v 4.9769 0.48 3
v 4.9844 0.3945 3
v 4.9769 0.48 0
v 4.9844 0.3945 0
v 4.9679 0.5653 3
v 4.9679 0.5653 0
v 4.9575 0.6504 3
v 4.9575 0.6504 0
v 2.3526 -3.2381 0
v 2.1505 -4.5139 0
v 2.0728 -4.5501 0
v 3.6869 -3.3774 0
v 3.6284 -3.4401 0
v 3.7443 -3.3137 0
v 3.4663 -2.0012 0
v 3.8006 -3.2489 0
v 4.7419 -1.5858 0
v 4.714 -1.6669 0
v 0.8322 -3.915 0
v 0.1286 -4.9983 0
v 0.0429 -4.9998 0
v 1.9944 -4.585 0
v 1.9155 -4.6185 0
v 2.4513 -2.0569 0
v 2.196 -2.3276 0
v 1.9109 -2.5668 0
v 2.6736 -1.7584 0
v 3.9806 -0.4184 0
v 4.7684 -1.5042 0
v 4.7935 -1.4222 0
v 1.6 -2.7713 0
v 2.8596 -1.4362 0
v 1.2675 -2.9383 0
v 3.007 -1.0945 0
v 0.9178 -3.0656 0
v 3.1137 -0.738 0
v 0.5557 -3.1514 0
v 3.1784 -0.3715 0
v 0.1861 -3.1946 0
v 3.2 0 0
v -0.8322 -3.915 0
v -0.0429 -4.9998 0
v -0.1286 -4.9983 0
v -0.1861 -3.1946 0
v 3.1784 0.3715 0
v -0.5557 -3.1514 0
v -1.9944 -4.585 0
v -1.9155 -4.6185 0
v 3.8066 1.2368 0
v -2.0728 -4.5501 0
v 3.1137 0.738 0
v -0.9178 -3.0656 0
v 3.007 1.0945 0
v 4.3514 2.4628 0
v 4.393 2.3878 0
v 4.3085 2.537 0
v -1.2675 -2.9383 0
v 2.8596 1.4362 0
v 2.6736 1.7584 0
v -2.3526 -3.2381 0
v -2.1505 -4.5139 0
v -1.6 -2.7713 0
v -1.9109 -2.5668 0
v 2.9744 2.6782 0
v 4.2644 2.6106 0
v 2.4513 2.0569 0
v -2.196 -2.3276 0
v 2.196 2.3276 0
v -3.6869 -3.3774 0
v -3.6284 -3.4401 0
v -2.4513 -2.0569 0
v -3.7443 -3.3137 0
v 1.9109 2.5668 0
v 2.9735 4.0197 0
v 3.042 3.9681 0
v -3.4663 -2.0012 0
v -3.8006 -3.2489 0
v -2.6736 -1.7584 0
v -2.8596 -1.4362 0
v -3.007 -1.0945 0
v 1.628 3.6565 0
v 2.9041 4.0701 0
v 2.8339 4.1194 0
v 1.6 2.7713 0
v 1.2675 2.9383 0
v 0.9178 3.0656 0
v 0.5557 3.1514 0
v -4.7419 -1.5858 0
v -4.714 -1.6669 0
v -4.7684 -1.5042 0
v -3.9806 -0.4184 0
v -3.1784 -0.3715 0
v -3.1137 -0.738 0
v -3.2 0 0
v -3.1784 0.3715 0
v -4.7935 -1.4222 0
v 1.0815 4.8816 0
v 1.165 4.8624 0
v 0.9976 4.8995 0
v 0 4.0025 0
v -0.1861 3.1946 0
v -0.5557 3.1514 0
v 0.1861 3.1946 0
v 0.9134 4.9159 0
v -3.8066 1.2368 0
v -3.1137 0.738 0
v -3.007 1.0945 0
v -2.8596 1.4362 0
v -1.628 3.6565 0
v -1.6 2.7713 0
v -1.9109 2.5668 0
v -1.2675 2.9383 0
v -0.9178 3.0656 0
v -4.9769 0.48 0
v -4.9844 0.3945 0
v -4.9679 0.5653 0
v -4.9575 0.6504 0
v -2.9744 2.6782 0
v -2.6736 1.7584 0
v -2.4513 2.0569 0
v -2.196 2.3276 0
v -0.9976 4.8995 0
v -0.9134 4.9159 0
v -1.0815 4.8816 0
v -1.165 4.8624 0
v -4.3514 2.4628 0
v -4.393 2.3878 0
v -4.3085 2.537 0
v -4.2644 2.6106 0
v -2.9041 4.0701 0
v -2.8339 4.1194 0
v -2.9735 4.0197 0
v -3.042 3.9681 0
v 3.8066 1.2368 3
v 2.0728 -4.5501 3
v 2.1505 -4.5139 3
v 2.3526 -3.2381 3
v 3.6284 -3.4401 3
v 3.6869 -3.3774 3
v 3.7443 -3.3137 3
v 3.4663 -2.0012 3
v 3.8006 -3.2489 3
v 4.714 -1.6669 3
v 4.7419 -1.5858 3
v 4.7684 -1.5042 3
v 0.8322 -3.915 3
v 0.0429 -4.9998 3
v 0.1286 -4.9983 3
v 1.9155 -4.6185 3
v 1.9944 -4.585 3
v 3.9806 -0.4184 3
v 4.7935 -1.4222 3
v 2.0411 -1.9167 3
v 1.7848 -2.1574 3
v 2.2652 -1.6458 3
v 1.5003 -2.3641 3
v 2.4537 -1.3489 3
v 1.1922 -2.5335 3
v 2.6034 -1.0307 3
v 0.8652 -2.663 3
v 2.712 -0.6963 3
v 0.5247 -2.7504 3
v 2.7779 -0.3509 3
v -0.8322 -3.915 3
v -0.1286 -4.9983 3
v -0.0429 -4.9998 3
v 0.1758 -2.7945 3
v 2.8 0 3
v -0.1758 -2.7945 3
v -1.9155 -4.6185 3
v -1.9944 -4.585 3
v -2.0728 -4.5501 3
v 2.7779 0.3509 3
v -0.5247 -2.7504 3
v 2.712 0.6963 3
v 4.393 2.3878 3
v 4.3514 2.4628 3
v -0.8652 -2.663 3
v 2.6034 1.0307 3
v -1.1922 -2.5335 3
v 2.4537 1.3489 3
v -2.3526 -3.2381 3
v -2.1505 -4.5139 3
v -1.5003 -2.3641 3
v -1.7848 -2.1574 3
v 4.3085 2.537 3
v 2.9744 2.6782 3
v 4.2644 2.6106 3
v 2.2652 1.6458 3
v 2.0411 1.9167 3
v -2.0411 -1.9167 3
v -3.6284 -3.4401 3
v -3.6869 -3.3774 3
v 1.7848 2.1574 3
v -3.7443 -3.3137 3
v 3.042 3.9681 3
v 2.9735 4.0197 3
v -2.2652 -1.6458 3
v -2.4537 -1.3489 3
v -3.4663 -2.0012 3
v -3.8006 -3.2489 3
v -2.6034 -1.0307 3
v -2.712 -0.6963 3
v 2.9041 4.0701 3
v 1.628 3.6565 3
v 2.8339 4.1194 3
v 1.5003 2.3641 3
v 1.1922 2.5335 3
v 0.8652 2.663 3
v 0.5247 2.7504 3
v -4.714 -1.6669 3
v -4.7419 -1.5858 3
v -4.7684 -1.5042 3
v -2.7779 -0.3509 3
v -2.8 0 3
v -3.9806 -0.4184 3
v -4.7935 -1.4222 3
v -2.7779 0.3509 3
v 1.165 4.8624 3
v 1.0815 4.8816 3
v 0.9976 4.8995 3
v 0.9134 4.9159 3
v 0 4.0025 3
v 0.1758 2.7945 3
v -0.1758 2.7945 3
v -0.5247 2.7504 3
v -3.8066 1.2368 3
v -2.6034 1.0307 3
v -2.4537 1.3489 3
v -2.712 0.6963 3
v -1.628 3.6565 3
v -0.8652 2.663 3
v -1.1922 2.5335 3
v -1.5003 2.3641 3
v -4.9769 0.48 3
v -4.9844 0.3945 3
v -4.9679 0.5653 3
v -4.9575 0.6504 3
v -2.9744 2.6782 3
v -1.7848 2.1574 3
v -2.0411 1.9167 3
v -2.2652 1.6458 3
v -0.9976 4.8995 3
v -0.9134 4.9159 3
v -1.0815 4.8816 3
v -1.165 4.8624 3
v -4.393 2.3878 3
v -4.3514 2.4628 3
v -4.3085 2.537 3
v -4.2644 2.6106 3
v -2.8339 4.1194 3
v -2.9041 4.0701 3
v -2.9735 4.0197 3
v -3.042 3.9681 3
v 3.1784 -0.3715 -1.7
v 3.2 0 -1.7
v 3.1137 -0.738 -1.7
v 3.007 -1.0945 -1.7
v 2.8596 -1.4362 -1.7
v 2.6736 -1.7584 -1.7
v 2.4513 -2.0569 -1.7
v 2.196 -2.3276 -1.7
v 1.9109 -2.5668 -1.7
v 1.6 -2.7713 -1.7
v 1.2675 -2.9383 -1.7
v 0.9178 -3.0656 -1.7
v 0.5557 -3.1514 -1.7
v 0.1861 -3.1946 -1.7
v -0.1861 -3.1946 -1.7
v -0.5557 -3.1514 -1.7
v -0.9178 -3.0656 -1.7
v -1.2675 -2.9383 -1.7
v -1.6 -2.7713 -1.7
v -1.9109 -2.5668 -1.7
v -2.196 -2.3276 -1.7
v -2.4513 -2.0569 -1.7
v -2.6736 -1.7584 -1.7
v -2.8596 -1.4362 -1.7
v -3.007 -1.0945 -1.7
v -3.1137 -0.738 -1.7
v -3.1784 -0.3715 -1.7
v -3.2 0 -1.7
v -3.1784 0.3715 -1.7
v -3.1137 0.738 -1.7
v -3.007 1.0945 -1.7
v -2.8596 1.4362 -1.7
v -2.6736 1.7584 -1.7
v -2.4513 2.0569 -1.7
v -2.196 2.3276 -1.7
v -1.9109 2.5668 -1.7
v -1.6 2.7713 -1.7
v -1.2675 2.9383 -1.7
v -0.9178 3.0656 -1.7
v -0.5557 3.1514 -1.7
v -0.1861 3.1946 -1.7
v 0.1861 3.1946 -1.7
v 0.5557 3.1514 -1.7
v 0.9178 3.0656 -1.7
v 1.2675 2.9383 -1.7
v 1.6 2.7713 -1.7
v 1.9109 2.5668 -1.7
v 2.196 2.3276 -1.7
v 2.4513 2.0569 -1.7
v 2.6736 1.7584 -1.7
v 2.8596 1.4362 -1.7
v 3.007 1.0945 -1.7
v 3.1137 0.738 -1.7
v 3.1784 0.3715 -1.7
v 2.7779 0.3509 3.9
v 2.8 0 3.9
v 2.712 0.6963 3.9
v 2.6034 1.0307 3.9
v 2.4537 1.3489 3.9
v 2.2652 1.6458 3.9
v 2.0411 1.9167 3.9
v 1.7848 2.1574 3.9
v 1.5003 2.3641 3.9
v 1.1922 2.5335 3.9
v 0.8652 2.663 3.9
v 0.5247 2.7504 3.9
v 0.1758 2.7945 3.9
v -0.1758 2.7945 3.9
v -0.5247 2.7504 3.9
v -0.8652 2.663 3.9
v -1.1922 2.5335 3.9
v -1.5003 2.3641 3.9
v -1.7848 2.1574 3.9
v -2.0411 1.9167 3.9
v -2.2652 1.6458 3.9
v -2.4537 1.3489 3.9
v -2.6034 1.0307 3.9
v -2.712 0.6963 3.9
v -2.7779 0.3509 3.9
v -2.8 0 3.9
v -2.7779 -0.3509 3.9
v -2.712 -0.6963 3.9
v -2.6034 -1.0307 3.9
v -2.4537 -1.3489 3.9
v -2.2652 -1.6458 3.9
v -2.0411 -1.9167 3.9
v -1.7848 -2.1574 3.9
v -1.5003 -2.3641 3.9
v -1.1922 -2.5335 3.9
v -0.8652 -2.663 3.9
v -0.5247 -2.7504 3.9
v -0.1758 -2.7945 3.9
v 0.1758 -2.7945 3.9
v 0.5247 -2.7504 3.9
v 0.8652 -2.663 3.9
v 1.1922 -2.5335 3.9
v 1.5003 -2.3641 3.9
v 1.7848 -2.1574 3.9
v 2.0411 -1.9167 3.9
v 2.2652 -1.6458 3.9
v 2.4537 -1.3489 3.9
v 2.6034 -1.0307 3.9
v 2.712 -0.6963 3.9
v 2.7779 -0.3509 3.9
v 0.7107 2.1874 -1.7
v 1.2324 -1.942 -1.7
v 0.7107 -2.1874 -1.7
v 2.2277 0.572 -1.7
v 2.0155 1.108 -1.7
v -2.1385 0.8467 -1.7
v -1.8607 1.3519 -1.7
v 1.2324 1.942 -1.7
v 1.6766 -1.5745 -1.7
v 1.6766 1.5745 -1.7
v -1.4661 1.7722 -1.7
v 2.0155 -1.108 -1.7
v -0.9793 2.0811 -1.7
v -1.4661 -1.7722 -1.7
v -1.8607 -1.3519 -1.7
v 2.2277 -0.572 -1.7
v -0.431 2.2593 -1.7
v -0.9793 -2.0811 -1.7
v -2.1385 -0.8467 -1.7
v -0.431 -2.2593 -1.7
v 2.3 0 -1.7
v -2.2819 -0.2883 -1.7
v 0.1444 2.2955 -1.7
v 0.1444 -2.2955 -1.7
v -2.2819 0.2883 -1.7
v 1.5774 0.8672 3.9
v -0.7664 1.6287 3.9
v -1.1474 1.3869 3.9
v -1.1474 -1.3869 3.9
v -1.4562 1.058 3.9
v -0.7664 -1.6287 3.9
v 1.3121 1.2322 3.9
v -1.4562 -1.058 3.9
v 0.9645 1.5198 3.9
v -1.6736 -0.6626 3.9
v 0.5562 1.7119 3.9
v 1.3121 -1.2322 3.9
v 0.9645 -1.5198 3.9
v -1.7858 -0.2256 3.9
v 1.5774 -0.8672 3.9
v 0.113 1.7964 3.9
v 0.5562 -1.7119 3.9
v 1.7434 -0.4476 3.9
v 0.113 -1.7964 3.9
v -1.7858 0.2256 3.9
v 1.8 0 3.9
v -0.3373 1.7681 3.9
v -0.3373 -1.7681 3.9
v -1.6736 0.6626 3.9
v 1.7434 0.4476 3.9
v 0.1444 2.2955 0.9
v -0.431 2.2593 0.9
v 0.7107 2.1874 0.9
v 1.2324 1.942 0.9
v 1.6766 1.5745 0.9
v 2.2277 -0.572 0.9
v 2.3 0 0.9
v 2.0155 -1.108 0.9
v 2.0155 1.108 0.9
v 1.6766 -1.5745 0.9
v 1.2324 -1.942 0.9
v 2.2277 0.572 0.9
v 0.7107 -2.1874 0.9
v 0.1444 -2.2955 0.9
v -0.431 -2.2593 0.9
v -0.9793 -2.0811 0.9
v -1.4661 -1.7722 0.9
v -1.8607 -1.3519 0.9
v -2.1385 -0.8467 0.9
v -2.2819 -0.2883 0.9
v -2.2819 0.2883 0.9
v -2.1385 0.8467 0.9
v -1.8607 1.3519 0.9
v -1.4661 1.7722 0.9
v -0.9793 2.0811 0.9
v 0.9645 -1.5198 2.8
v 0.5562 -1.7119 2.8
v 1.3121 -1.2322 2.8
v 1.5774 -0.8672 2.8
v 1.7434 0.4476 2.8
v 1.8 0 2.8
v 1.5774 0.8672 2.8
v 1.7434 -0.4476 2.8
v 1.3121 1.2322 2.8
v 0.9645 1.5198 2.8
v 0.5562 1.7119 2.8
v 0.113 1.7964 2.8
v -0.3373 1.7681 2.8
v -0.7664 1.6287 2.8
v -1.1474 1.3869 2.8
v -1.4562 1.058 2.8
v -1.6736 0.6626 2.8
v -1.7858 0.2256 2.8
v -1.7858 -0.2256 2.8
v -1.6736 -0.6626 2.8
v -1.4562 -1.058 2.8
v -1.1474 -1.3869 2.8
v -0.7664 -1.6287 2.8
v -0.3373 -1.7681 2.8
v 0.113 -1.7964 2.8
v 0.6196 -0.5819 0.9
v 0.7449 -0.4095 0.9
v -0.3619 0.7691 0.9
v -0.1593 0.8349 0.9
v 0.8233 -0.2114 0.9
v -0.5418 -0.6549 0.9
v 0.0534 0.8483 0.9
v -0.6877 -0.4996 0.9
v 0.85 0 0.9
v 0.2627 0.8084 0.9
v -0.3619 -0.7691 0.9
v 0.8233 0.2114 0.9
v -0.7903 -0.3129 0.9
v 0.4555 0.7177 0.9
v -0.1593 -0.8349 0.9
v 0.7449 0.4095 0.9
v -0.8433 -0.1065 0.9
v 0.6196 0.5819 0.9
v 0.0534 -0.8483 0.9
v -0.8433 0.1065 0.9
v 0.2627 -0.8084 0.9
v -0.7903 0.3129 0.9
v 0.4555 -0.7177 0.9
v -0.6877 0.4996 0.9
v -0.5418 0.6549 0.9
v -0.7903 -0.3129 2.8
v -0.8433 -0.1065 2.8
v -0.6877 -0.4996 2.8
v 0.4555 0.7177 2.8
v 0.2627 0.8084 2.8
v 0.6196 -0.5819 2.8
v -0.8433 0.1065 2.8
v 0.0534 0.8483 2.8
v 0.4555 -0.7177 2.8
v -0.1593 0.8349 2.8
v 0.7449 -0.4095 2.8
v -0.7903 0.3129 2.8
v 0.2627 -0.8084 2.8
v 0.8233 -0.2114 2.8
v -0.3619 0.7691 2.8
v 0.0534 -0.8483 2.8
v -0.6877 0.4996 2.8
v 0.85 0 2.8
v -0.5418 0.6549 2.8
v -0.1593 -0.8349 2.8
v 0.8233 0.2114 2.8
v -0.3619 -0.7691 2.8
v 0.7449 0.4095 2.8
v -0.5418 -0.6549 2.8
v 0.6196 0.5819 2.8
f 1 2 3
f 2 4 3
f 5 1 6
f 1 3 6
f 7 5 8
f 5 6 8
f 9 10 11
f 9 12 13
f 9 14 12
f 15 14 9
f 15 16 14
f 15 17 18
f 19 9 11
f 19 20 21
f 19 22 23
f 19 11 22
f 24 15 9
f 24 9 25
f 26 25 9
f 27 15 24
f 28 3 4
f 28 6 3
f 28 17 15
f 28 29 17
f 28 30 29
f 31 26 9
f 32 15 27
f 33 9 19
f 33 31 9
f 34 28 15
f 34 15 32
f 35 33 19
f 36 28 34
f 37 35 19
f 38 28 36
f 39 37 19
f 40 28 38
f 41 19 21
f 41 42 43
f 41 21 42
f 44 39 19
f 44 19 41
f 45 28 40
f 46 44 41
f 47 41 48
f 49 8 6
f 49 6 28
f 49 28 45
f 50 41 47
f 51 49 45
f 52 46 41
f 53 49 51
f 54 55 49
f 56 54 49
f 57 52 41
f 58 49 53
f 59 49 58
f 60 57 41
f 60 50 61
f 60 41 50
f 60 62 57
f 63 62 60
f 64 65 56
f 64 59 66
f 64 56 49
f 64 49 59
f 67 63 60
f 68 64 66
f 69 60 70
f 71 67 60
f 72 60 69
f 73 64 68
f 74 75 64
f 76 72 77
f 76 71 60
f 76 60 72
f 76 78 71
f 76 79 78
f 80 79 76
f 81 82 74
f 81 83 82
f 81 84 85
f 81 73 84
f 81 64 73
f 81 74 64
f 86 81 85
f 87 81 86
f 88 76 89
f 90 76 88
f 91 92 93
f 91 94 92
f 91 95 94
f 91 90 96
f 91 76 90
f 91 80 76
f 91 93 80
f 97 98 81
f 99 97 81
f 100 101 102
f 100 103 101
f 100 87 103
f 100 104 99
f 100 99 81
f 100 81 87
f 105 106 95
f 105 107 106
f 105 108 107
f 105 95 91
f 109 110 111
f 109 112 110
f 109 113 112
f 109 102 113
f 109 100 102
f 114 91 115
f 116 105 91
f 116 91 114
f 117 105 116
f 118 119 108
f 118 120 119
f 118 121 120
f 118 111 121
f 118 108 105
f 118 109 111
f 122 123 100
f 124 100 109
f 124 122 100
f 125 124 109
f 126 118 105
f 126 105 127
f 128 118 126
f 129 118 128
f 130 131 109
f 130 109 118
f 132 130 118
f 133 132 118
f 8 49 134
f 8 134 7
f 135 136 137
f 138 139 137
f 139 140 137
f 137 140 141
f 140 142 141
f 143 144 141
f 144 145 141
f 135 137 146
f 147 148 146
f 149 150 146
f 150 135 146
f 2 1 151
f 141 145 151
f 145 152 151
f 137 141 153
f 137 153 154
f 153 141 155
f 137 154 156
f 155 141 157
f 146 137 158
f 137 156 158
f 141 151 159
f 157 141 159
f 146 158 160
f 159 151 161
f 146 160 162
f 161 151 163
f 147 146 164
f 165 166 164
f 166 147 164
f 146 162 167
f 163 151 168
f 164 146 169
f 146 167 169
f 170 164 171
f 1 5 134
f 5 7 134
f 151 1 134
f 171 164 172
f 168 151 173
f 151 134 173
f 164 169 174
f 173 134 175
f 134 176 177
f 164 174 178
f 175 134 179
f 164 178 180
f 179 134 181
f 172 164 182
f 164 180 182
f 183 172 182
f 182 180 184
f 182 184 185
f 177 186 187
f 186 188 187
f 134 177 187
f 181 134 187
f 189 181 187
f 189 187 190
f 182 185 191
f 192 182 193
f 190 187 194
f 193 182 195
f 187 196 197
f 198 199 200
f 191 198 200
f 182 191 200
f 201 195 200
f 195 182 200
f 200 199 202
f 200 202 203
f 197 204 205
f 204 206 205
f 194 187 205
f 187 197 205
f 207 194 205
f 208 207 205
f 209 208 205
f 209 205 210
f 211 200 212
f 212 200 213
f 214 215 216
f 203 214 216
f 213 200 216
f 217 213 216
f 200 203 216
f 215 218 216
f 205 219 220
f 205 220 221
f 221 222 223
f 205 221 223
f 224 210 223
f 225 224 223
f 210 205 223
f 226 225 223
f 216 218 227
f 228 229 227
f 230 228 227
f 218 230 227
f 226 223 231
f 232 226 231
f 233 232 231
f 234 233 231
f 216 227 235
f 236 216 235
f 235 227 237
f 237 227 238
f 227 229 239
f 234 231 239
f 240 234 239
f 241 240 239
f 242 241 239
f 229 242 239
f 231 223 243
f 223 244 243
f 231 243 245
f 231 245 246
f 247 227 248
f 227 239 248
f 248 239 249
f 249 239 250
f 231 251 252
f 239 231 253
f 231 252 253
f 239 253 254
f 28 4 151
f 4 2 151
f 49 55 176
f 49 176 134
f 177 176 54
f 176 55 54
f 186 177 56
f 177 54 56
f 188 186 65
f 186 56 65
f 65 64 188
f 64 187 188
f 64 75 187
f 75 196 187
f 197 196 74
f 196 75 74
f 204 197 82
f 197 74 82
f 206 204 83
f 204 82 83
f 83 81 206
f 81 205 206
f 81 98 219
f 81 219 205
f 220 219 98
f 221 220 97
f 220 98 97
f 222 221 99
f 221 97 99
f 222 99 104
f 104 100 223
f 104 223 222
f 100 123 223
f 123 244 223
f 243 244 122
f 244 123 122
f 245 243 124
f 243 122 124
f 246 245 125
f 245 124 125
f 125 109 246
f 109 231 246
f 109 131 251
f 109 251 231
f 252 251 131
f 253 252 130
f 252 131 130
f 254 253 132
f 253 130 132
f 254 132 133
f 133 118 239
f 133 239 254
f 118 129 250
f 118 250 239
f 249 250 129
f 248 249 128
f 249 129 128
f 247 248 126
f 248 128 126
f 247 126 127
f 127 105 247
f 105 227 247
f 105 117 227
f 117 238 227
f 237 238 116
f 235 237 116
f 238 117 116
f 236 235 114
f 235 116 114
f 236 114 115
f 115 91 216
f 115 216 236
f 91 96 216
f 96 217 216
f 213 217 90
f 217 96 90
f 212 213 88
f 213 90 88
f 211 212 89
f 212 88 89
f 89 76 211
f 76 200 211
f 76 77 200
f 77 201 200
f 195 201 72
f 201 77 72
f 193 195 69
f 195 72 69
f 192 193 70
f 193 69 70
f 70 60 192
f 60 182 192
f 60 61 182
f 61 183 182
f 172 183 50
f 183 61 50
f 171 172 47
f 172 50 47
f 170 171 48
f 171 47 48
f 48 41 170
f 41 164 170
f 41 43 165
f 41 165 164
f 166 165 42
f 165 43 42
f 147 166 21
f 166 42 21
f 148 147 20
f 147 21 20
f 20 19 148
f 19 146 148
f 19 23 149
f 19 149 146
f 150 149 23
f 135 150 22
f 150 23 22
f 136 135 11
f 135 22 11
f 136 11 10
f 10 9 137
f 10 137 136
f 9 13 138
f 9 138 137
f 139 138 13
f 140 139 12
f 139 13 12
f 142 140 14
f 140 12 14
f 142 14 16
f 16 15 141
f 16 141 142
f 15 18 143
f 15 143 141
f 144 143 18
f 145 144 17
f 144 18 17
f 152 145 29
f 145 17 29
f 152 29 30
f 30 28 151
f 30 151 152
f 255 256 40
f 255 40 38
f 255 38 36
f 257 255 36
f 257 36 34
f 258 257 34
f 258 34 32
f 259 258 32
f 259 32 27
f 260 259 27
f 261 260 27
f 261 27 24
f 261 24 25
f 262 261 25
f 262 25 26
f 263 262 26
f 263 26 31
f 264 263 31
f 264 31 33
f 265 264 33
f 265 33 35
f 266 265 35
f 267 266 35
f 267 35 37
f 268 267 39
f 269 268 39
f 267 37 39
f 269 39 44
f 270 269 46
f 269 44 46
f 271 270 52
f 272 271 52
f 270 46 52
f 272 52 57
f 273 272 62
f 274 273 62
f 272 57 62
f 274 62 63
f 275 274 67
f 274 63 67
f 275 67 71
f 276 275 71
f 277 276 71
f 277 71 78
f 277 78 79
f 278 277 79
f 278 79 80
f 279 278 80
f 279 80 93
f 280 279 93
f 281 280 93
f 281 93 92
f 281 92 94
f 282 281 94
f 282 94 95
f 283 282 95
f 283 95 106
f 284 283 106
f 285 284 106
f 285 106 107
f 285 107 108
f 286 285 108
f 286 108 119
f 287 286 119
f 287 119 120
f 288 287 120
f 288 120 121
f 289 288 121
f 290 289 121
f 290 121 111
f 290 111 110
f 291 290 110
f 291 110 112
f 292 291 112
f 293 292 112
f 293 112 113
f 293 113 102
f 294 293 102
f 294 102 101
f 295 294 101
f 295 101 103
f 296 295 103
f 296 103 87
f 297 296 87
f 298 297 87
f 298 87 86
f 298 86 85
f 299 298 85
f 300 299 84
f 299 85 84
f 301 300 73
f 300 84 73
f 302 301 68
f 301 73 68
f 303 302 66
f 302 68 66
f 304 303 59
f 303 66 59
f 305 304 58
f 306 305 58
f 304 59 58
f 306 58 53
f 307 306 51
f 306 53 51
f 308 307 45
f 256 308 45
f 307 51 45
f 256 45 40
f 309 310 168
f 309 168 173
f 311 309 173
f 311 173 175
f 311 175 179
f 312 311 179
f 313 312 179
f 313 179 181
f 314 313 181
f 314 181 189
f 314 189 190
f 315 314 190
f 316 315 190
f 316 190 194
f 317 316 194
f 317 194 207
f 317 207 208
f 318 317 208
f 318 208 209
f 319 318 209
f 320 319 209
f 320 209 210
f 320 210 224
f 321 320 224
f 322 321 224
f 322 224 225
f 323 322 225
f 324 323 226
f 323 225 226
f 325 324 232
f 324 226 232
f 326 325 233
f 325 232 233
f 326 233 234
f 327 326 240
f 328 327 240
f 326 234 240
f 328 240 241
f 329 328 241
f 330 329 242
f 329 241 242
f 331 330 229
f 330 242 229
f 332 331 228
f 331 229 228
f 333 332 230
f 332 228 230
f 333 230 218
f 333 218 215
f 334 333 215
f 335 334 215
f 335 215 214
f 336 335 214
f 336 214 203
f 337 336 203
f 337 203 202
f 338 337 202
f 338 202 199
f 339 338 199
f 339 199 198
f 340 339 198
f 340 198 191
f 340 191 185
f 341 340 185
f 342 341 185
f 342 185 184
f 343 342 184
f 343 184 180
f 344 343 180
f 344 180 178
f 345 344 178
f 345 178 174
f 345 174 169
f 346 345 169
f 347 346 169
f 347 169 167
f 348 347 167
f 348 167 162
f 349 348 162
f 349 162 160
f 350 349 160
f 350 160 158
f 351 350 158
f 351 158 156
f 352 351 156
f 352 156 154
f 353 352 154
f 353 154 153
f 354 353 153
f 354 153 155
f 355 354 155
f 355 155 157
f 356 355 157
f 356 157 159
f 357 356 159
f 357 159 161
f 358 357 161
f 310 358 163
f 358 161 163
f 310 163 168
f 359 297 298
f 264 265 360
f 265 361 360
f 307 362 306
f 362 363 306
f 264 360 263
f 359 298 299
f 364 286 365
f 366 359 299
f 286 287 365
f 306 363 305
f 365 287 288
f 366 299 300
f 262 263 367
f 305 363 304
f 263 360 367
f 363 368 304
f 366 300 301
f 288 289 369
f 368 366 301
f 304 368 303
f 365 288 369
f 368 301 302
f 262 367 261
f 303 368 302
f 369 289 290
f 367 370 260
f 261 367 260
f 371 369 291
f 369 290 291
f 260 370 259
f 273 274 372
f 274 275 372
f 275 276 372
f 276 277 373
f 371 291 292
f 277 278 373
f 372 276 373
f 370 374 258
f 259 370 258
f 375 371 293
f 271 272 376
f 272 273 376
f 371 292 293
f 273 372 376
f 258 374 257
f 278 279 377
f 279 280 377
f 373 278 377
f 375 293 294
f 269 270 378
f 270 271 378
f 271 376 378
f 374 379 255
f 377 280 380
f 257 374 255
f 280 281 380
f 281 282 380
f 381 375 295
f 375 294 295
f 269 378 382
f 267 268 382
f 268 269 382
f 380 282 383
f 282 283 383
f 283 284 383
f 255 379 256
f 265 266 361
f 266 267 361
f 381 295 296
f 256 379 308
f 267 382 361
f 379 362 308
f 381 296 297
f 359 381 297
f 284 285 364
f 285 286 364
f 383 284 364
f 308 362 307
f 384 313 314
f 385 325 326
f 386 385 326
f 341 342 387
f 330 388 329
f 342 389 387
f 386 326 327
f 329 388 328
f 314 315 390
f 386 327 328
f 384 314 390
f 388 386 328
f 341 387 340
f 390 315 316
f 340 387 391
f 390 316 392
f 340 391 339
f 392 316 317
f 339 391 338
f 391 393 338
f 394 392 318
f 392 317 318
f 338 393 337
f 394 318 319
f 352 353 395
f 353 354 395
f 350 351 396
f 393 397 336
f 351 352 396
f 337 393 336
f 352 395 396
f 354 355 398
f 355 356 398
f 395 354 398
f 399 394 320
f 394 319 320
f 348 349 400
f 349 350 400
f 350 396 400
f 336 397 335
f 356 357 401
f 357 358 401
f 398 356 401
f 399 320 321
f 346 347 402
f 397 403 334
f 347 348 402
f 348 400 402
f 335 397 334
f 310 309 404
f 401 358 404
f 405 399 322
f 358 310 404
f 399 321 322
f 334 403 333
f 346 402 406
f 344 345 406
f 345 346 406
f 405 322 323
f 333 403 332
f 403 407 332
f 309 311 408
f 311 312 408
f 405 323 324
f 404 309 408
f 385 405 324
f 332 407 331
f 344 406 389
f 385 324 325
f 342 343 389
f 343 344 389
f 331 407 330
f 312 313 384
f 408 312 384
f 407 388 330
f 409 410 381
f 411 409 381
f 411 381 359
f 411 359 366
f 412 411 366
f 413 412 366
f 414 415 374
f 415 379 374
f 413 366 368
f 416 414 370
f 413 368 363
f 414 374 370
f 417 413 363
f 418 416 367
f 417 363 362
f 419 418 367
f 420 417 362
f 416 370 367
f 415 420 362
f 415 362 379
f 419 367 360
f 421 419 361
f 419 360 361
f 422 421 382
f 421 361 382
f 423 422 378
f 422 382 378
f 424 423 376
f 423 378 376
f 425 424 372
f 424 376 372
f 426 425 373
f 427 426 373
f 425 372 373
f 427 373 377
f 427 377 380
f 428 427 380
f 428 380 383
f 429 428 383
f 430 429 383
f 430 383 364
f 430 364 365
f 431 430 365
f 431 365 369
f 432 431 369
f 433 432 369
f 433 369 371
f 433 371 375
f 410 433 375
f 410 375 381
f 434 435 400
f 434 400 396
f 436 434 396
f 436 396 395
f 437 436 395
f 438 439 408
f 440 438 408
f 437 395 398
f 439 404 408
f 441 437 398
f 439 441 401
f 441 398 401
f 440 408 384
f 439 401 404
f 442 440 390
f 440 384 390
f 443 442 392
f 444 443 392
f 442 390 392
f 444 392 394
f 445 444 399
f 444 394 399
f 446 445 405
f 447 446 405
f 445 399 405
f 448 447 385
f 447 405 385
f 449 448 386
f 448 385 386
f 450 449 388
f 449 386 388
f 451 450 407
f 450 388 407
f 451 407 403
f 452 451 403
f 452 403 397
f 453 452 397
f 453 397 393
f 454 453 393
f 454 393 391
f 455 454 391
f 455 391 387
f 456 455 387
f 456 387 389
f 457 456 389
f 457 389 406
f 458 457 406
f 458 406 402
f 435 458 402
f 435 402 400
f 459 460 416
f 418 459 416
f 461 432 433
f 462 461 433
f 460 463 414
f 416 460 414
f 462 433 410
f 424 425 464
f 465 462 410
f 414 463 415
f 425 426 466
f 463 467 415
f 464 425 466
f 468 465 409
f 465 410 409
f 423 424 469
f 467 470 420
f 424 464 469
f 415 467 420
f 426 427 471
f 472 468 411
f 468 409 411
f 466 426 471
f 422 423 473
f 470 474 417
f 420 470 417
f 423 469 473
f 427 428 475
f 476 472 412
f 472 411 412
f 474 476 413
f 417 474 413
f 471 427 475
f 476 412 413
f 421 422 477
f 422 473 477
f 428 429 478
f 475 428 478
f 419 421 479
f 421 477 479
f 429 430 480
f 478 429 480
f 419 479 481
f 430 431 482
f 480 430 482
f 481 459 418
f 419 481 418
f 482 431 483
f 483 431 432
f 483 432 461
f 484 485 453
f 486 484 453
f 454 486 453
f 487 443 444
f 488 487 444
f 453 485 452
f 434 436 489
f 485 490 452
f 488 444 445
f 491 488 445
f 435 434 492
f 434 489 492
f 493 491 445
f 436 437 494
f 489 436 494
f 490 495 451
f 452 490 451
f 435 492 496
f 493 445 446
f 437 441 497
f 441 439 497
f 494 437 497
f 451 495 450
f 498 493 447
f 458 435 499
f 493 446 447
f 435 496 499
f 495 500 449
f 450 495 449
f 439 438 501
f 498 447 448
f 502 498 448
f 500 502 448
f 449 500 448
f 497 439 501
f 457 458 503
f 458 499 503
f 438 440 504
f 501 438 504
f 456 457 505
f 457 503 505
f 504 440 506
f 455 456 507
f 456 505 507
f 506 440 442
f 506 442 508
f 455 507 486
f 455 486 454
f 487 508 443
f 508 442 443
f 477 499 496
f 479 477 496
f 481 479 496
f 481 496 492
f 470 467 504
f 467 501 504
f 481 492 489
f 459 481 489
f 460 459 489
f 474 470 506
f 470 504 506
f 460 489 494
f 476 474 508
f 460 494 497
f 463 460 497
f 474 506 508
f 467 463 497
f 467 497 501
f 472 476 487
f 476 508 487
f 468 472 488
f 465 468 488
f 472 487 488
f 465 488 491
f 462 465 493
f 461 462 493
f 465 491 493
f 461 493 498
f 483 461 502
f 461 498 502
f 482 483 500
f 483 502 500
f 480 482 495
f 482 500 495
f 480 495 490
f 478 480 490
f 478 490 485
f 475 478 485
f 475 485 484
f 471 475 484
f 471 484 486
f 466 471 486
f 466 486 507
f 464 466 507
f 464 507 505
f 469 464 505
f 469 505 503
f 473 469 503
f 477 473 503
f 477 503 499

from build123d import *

# Parameters (mm, degrees)
SKETCH_R           = 5
PAD_DEPTH          = 3
SKETCH001_R        = 2.8
PAD001_DEPTH       = 0.9
SKETCH002_R        = 1.8
POCKET_DEPTH       = 1.1
SKETCH003_R        = 3.2
PAD002_DEPTH       = 1.7
SKETCH004_R        = 2.3
POCKET001_DEPTH    = 2.6
SKETCH005_R        = 0.4
POCKET002_DEPTH    = 4.701
POCKET003_DEPTH    = 35.122045
POLARPATTERN_COUNT = 15
SKETCH008_R        = 0.85
POCKET004_DEPTH    = 4.501


with BuildPart() as part:
    # Sketch → Pad (new body)
    with BuildSketch(Plane.XY):
        Circle(SKETCH_R)
    extrude(amount=PAD_DEPTH)

    # Sketch001 → Pad001 (new body)
    with BuildSketch(Plane.XY.offset(3)):
        Circle(SKETCH001_R)
    extrude(amount=PAD001_DEPTH)

    # Sketch002 → Pocket (cut)
    with BuildSketch(Plane.XY.offset(3.9)):
        Circle(SKETCH002_R)
    extrude(amount=-POCKET_DEPTH, mode=Mode.SUBTRACT)

    # Sketch003 → Pad002 (new body)
    with BuildSketch(Plane(origin=(0, 0, 0), x_dir=(1, 0, 0), z_dir=(0, 0, -1))):
        Circle(SKETCH003_R)
    extrude(amount=PAD002_DEPTH)

    # Sketch004 → Pocket001 (cut)
    with BuildSketch(Plane(origin=(0, 0, -1.7), x_dir=(1, 0, 0), z_dir=(0, 0, -1))):
        Circle(SKETCH004_R)
    extrude(amount=-POCKET001_DEPTH, mode=Mode.SUBTRACT)

    # Sketch005 → Pocket002 (cut, through all)
    with BuildSketch(Plane.XY.offset(3)):
        with Locations((-1.8, 7.126184)):
            Circle(SKETCH005_R)
        with Locations((1.8, 7.126184)):
            Circle(SKETCH005_R)
    extrude(amount=-POCKET002_DEPTH, mode=Mode.SUBTRACT)

    # Sketch007 → Pocket003 (cut, through all)
    with BuildSketch(Plane.XY.offset(3)):
        Polygon((-1, 5.002483), (0, 4.002483), (1, 5.002483), align=None)
    pocket003 = extrude(amount=-POCKET003_DEPTH, mode=Mode.SUBTRACT)

    # PolarPattern: Pocket003 ×15 about axis
    polarpattern_axis = Axis((0, 0, 3), (0, 0, 1))
    for i in range(1, POLARPATTERN_COUNT):
        add(pocket003.rotate(polarpattern_axis, i * 360 / POLARPATTERN_COUNT), mode=Mode.SUBTRACT)

    # Sketch008 → Pocket004 (cut, through all)
    with BuildSketch(Plane.XY.offset(2.8)):
        Circle(SKETCH008_R)
    extrude(amount=-POCKET004_DEPTH, mode=Mode.SUBTRACT)


solid = part.part
